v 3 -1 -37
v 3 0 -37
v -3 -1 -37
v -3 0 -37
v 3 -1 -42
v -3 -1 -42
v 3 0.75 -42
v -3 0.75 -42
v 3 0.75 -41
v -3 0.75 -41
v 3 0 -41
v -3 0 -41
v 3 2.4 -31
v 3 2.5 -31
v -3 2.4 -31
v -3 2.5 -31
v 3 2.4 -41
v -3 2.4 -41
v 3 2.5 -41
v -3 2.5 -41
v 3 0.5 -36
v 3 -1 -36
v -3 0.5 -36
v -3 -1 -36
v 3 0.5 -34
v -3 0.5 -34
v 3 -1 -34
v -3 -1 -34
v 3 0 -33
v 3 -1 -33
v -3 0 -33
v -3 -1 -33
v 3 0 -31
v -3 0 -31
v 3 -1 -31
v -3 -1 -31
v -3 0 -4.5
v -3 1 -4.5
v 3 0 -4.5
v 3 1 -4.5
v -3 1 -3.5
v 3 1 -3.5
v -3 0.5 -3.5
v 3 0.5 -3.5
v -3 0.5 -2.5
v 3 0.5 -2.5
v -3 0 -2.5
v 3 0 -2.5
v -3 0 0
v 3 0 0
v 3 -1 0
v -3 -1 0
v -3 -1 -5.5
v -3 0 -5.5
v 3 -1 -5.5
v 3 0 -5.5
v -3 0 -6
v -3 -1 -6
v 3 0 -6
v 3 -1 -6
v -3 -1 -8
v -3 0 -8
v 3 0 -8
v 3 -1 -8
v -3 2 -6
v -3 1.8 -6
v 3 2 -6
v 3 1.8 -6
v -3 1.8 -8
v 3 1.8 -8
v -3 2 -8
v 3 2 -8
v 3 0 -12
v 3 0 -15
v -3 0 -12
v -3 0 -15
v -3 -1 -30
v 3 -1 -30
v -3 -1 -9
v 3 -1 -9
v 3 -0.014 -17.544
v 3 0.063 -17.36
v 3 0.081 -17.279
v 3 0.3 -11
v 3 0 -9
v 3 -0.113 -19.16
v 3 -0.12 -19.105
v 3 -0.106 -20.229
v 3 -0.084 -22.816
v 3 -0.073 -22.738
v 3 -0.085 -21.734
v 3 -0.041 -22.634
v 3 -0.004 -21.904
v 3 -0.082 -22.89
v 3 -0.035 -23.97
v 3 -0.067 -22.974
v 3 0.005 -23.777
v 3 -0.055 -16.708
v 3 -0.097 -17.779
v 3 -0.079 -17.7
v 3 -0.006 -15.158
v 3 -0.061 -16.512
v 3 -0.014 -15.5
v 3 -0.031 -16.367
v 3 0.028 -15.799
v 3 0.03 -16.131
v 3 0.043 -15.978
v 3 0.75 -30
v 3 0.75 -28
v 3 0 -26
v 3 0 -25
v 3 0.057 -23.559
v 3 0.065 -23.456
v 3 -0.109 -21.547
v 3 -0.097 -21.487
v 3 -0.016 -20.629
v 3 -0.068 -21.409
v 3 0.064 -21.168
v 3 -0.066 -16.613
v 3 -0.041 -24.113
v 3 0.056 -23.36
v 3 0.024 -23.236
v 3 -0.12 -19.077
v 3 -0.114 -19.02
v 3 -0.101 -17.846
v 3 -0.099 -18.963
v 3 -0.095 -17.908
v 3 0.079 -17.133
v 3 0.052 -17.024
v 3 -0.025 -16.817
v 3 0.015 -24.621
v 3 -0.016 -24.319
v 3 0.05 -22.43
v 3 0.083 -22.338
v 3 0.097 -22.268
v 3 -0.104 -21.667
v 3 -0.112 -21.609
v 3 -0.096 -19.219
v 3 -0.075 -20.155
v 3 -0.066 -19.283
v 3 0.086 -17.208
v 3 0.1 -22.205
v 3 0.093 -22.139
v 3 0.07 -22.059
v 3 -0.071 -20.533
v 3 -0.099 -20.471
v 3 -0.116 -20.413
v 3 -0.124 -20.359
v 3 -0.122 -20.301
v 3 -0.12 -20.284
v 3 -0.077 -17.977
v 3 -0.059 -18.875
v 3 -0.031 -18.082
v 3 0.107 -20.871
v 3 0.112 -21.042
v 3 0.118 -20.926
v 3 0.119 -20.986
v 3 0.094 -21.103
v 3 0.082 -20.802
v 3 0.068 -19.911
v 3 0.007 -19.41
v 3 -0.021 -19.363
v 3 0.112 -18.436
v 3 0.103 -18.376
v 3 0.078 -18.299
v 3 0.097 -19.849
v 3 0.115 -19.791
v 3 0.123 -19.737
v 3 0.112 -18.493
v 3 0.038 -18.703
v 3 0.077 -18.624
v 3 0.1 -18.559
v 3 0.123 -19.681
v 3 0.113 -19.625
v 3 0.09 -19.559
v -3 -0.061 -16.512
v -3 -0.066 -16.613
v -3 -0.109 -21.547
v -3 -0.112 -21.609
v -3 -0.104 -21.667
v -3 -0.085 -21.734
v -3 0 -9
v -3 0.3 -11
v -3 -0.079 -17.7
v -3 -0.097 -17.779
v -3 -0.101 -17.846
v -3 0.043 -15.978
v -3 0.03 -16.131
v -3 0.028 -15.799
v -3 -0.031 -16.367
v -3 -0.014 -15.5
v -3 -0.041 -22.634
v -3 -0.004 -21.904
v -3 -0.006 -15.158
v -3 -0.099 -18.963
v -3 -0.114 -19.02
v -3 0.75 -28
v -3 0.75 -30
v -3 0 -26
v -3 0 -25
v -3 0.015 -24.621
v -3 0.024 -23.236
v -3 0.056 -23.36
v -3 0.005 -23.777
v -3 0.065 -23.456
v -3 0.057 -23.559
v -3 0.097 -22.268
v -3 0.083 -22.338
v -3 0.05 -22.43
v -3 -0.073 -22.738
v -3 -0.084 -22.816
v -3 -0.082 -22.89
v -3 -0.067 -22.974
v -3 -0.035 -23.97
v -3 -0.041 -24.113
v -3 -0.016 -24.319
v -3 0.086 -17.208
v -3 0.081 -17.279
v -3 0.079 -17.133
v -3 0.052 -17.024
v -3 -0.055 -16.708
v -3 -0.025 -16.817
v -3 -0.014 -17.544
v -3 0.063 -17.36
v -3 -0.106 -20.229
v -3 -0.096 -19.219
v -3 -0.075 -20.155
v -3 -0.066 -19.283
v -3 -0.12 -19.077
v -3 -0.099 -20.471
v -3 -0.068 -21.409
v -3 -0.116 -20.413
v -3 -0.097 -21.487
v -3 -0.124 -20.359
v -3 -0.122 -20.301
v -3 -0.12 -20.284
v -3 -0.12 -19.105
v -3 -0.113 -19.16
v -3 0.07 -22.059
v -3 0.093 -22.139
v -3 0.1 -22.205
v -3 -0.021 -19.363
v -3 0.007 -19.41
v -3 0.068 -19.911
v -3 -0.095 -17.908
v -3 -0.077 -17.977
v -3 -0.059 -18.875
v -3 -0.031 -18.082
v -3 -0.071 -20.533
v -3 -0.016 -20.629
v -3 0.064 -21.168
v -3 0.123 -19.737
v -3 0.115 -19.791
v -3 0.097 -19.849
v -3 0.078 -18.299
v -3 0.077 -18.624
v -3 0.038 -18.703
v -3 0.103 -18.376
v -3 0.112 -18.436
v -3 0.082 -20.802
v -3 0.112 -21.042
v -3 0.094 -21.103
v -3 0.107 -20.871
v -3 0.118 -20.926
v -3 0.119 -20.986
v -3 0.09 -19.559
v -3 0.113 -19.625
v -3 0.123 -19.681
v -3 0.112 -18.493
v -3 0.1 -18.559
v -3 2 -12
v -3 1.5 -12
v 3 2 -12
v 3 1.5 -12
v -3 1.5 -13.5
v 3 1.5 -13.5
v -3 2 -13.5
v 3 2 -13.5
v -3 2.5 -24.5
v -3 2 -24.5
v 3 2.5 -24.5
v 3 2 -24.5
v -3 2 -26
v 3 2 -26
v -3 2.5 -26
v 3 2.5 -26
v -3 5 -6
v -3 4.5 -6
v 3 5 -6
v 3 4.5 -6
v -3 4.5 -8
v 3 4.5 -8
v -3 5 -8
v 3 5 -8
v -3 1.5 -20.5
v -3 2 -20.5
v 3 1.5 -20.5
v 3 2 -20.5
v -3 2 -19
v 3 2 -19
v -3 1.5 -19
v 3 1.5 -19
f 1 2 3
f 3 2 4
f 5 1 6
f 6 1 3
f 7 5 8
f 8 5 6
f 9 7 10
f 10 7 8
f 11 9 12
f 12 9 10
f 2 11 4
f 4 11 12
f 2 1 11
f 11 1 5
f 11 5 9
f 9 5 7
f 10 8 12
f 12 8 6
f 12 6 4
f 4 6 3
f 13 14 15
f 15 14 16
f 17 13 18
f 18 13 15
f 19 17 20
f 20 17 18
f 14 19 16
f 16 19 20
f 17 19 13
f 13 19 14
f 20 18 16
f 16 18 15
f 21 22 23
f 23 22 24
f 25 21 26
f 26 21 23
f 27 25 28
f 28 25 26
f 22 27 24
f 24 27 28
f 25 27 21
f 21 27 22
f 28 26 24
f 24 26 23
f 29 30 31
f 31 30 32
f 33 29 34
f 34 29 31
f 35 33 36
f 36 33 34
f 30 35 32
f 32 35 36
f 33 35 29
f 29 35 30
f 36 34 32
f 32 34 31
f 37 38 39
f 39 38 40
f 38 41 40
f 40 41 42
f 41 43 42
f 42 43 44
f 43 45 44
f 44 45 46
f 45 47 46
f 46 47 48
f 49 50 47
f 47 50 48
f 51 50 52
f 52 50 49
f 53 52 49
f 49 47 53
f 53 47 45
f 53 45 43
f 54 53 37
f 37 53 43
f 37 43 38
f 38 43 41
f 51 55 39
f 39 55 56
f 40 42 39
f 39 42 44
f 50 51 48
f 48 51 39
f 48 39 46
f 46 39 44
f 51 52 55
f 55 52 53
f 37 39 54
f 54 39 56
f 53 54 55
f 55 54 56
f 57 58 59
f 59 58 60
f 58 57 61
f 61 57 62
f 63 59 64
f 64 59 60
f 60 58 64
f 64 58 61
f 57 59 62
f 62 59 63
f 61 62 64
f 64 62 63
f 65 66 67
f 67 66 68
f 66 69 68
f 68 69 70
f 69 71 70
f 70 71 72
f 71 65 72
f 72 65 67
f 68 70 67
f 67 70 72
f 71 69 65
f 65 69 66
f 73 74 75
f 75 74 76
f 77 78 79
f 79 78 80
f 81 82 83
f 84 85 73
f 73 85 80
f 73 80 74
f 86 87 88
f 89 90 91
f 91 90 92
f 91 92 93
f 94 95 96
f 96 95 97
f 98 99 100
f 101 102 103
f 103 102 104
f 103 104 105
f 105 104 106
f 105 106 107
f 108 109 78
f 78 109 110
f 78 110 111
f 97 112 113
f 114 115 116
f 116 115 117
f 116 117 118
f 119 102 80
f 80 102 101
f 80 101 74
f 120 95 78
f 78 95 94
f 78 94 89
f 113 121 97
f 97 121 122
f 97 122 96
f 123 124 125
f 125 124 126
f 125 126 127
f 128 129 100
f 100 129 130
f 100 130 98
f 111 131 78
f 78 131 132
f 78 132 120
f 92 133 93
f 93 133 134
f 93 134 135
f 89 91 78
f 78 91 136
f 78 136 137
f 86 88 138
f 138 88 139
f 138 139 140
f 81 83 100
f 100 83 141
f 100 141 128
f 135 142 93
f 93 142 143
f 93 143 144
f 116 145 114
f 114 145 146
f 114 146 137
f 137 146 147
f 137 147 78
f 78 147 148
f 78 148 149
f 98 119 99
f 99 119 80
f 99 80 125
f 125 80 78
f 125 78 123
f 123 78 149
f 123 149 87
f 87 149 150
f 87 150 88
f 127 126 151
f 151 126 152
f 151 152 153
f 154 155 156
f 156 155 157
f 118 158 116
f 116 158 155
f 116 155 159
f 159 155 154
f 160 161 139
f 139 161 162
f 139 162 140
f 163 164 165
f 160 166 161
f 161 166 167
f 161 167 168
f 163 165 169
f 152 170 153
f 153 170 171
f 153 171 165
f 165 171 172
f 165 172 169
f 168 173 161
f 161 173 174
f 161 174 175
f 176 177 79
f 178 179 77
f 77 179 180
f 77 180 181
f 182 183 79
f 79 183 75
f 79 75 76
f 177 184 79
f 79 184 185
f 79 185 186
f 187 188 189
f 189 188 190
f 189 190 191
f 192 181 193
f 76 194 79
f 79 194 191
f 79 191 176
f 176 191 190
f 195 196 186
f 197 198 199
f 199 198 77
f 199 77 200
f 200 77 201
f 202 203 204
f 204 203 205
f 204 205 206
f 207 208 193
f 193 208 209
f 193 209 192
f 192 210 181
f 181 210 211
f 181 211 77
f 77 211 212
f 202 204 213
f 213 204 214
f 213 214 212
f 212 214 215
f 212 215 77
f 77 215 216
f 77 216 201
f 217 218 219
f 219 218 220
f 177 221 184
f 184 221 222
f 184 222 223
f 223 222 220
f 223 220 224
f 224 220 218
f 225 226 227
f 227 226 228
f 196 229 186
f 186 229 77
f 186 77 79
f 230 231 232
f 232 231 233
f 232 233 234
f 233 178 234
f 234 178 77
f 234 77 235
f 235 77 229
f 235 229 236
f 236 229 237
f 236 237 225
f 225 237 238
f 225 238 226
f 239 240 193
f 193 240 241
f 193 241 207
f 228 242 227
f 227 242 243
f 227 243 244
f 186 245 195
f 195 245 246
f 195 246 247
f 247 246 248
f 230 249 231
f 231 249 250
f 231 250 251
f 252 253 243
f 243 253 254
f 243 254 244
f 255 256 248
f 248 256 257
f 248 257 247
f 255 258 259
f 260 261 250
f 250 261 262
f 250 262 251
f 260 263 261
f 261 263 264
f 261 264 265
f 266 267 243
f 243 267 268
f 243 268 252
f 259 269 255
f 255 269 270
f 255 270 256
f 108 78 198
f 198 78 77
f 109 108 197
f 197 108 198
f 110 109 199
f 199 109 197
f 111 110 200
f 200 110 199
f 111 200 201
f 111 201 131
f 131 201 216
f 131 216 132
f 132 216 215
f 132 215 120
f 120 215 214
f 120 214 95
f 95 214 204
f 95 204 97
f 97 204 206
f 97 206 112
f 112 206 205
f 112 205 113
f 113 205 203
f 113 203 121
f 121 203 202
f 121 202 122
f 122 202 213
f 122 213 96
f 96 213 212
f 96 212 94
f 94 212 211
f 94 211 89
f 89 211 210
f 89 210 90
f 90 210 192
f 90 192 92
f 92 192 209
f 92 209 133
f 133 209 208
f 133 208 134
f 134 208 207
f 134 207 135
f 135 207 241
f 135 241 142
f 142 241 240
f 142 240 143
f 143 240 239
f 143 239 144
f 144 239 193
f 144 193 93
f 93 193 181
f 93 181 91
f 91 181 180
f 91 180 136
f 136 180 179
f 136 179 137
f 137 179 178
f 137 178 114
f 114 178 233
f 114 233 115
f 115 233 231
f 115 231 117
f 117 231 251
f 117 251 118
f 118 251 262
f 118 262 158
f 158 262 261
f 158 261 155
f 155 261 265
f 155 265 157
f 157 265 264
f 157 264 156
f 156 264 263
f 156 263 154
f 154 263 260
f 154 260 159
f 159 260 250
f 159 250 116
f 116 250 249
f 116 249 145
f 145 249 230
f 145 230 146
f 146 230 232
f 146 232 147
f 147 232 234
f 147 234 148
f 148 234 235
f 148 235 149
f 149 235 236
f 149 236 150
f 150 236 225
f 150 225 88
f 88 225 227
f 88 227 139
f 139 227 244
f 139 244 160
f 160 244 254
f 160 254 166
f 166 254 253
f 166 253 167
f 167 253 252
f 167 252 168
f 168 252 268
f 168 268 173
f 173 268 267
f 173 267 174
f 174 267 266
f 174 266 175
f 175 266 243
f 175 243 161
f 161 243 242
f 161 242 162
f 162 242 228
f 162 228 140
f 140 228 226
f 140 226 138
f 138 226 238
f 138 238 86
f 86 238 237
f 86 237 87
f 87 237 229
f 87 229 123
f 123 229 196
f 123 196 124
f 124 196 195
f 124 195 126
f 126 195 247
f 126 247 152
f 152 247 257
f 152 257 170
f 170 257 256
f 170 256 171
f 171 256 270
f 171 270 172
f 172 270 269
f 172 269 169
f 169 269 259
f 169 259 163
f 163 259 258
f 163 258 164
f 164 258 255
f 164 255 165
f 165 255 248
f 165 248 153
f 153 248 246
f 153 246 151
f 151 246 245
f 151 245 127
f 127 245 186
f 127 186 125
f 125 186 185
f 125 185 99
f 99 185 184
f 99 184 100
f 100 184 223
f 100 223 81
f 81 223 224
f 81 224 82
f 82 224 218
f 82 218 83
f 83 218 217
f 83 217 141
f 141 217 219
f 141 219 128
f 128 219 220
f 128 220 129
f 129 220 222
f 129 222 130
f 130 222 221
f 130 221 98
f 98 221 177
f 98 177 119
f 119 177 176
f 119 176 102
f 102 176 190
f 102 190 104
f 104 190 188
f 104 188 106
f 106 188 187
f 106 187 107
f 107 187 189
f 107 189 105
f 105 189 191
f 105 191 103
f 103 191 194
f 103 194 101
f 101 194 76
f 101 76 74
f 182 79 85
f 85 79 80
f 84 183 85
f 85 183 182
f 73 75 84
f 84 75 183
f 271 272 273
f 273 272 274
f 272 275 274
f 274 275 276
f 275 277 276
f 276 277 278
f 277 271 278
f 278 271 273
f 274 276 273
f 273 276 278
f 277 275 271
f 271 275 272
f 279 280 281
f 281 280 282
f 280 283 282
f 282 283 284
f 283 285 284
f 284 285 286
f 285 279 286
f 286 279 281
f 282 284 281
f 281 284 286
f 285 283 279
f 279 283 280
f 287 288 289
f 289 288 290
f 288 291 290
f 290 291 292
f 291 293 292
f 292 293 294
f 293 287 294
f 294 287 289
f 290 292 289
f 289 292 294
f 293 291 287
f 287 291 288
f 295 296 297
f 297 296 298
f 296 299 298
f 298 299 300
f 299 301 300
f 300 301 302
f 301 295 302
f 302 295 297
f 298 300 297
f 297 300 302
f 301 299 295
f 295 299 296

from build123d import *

# Parameters (mm, degrees)
EXTRUDE_1_DEPTH             = 3
EXTRUDE_1_2_DEPTH           = 3
SKETCH_1_W                  = 10
SKETCH_1_H                  = 0.1
EXTRUDE_1_3_DEPTH           = 3
SKETCH_1_W_2                = 2
SKETCH_1_H_2                = 1.5
EXTRUDE_1_4_DEPTH           = 3
SKETCH_1_H_3                = 1
EXTRUDE_1_5_DEPTH           = 3
SKETCH_1_W_3                = 15
EXTRUDE_1_6_DEPTH           = 3
EXTRUDE_2_DEPTH             = 3
EXTRUDE_2_DEPTH_BACK        = 3
EXTRUDE_3_DEPTH             = 3
EXTRUDE_3_DEPTH_BACK        = 3
CUT_EXTRUDE_START           = 3
SKETCH_4_W                  = 0.5
SKETCH_4_H                  = 1
SKETCH_4_W_2                = 1
CUT_EXTRUDE_1_DEPTH         = 7.0000001
EXTRUDE_4_REACH             = 5
SKETCH_5_W                  = 2
SKETCH_5_H                  = 0.2
EXTRUDE_4_DIRECTION_2_REACH = 5
EXTRUDE_5_REACH             = 5
EXTRUDE_5_DIRECTION_2_REACH = 5
EXTRUDE_START               = -3
SKETCH_7_W                  = 1.5
SKETCH_7_H                  = 0.5
EXTRUDE_6_DEPTH             = 6
EXTRUDE_6_2_DEPTH           = 6
EXTRUDE_6_3_DEPTH           = 6
SKETCH_7_W_2                = 2
EXTRUDE_6_4_DEPTH           = 6


with BuildPart() as part:
    # 草图1 → 凸台-拉伸1 (new body, symmetric)
    with BuildSketch(Plane(origin=(0, 0, 0), x_dir=(0, 0, -1), z_dir=(1, 0, 0))):
        Polygon((37, 0), (41, 0), (41, 0.75), (42, 0.75), (42, -1), (37, -1), align=None)
    extrude(amount=EXTRUDE_1_DEPTH, both=True)


with BuildPart() as body_2:
    # 草图1 → Extrude 1 2 (new body, symmetric)
    with BuildSketch(Plane(origin=(0, 0, 0), x_dir=(0, 0, -1), z_dir=(1, 0, 0))):
        Polygon((30, -1), (30, 0.75), (28, 0.75), (26, 0), (25, 0), (25, -1), align=None)
    extrude(amount=EXTRUDE_1_2_DEPTH, both=True)



with BuildPart() as body_3:
    # 草图1 → Extrude 1 3 (new body, symmetric)
    with BuildSketch(Plane(origin=(0, 0, 0), x_dir=(0, 0, -1), z_dir=(1, 0, 0))):
        with Locations((36, 2.45)):
            Rectangle(SKETCH_1_W, SKETCH_1_H)
    extrude(amount=EXTRUDE_1_3_DEPTH, both=True)


with BuildPart() as body_4:
    # 草图1 → Extrude 1 4 (new body, symmetric)
    with BuildSketch(Plane(origin=(0, 0, 0), x_dir=(0, 0, -1), z_dir=(1, 0, 0))):
        with Locations((35, -0.25)):
            Rectangle(SKETCH_1_W_2, SKETCH_1_H_2)
    extrude(amount=EXTRUDE_1_4_DEPTH, both=True)


with BuildPart() as body_5:
    # 草图1 → Extrude 1 5 (new body, symmetric)
    with BuildSketch(Plane(origin=(0, 0, 0), x_dir=(0, 0, -1), z_dir=(1, 0, 0))):
        with Locations((32, -0.5)):
            Rectangle(SKETCH_1_W_2, SKETCH_1_H_3)
    extrude(amount=EXTRUDE_1_5_DEPTH, both=True)


with BuildPart() as body_6:
    # 草图1 → Extrude 1 6 (new body, symmetric)
    with BuildSketch(Plane(origin=(0, 0, 0), x_dir=(0, 0, -1), z_dir=(1, 0, 0))):
        with Locations((7.5, -0.5)):
            Rectangle(SKETCH_1_W_3, SKETCH_1_H_3)
    extrude(amount=EXTRUDE_1_6_DEPTH, both=True)


with BuildPart() as body_2_1:
    add(body_2.part)

    add(body_6.part)  # 凸台-拉伸2 merges body 6
    # 草图2 → 凸台-拉伸2 (add, two sides)
    with BuildSketch(Plane(origin=(0, 0, 0), x_dir=(0, 0, -1), z_dir=(1, 0, 0))) as extrude_2_sk:
        with BuildLine():
            Line((25, 0), (25, -1))
            Line((25, -1), (15, -1))
            Line((15, -1), (15, 0))
            add(Edge.make_bspline(
                [(15, 0), (15.019852379, 0), (15.060190558, -0.000731178), (15.170958225, -0.004993424), (15.304514791, -0.017003842), (15.474252144, -0.021487702), (15.68874463, 0.004937048), (15.893861657, 0.051909588), (16.094951986, 0.044850487), (16.295817919, -0.009198636), (16.472538126, -0.066588084), (16.69222545, -0.079729643), (16.888335149, 0.000528924), (17.057792019, 0.071283945), (17.21996953, 0.094390627), (17.347292458, 0.072033865), (17.465227624, 0.024389734), (17.578141197, -0.031891345), (17.698483931, -0.084840948), (17.835520741, -0.113450201), (17.97049161, -0.086701778), (18.088481622, -0.029788445), (18.195304005, 0.029919779), (18.296356752, 0.08125789), (18.419356141, 0.120991981), (18.565356334, 0.111821211), (18.707223229, 0.039142021), (18.849825719, -0.049006587), (19.004553287, -0.12913704), (19.182498155, -0.125477201), (19.333914462, -0.040957938), (19.473953485, 0.048104078), (19.625939165, 0.131731177), (19.803927697, 0.130852507), (19.955368453, 0.04586001), (20.095152965, -0.044159697), (20.246692264, -0.130036088), (20.425953601, -0.13233286), (20.579865028, -0.047628059), (20.721610821, 0.042597321), (20.875124879, 0.126850879), (21.052917266, 0.126831512), (21.205681567, 0.047140906), (21.346635582, -0.039353707), (21.485341862, -0.109599979), (21.626264904, -0.120139718), (21.74489324, -0.085169656), (21.841126768, -0.038617733), (21.945725191, 0.019145441), (22.061511684, 0.07771784), (22.228121545, 0.120686636), (22.399545356, 0.071438402), (22.54263056, -0.004711258), (22.687559945, -0.064819036), (22.80938576, -0.090770941), (22.933479525, -0.081171782), (23.050482764, -0.045843176), (23.160886922, -0.001969054), (23.270309992, 0.037903038), (23.407269761, 0.0699359), (23.598735058, 0.065525517), (23.820769111, -0.018043876), (24.077234518, -0.062657182), (24.323354641, -0.012520022), (24.534895962, 0.01664141), (24.70139475, 0.017113956), (24.832869481, 0.006461173), (24.940989195, 0.001444486), (24.980546523, 0.000255205), (25, 0)],
                knots=[0.080420158, 0.080420158, 0.080420158, 0.080420158, 0.080420158, 0.08798504, 0.095549922, 0.110679687, 0.125809451, 0.140939215, 0.16517557, 0.177293748, 0.189411925, 0.207122949, 0.224833973, 0.245520981, 0.255864485, 0.266207988, 0.276282774, 0.28635756, 0.296432346, 0.306507132, 0.318373913, 0.330240694, 0.339311626, 0.348382559, 0.357453492, 0.366524424, 0.380143825, 0.393763225, 0.407382626, 0.421002027, 0.434517018, 0.448032009, 0.461547, 0.475061991, 0.488607776, 0.502153562, 0.515699347, 0.529245132, 0.542954524, 0.556663916, 0.570373307, 0.584082699, 0.597491202, 0.610899704, 0.624308207, 0.637716709, 0.646276459, 0.65483621, 0.66339596, 0.67195571, 0.684299222, 0.696642734, 0.716675493, 0.726691872, 0.736708251, 0.746449596, 0.75619094, 0.765932285, 0.77567363, 0.784483857, 0.793294084, 0.810914537, 0.835554636, 0.860194735, 0.875021766, 0.889848798, 0.904675829, 0.912089345, 0.919502861, 0.919502861, 0.919502861, 0.919502861, 0.919502861], degree=4))
        make_face()
    extrude(amount=EXTRUDE_2_DEPTH)
    extrude(extrude_2_sk.sketch, amount=-EXTRUDE_2_DEPTH_BACK)

    # 草图3 → 凸台-拉伸3 (add, two sides)
    with BuildSketch(Plane(origin=(0, 0, 0), x_dir=(0, 0, -1), z_dir=(1, 0, 0))) as extrude_3_sk:
        Polygon((2.5, 0), (2.5, 0.5), (3.5, 0.5), (3.5, 1), (4.5, 1), (4.5, 0), align=None)
    extrude(amount=EXTRUDE_3_DEPTH)
    extrude(extrude_3_sk.sketch, amount=-EXTRUDE_3_DEPTH_BACK)

    # 草图4 → 切除-拉伸1 (cut, through all)
    with BuildSketch(Plane(origin=(0, 0, 0), x_dir=(0, 0, -1), z_dir=(1, 0, 0)).offset(CUT_EXTRUDE_START)):
        with Locations((5.75, -0.5)):
            Rectangle(SKETCH_4_W, SKETCH_4_H)
        with Locations((8.5, -0.5)):
            Rectangle(SKETCH_4_W_2, SKETCH_4_H)
    extrude(amount=-CUT_EXTRUDE_1_DEPTH, mode=Mode.SUBTRACT)


with BuildPart() as body_6_2:

    # 凸台-拉伸4: up to this face of the body (flat: up to its plane)
    extrude_4_end = Plane(body_2_1.part.faces().sort_by_distance((3, -0.303571429, -2.946428571))[0])
    # 草图5 → 凸台-拉伸4 (new body, up to the picked face)
    with BuildSketch(Plane(origin=(0, 0, 0), x_dir=(0, 0, -1), z_dir=(1, 0, 0)), mode=Mode.PRIVATE) as extrude_4_sk1:
        with Locations((7, 1.9)):
            Rectangle(SKETCH_5_W, SKETCH_5_H)
    extrude_4_tool1 = split(extrude(extrude_4_sk1.sketch, amount=EXTRUDE_4_REACH, mode=Mode.PRIVATE), bisect_by=extrude_4_end, keep=Keep.BOTH, mode=Mode.PRIVATE)
    add(extrude_4_tool1.solids().sort_by_distance((0, 1.9, -7))[0])


    # 凸台-拉伸4 direction 2: up to this face of the body (flat: up to its plane)
    extrude_4_direction_2_end = Plane(body_2_1.part.faces().sort_by_distance((-3, -0.416345745, -20.388606858))[0])
    # 草图5 → 凸台-拉伸4 direction 2 (add, up to the picked face)
    with BuildSketch(Plane(origin=(0, 0, 0), x_dir=(0, 0, -1), z_dir=(1, 0, 0)), mode=Mode.PRIVATE) as extrude_4_direction_2_sk1:
        with Locations((7, 1.9)):
            Rectangle(SKETCH_5_W, SKETCH_5_H)
    extrude_4_direction_2_tool1 = split(extrude(extrude_4_direction_2_sk1.sketch, amount=-EXTRUDE_4_DIRECTION_2_REACH, mode=Mode.PRIVATE), bisect_by=extrude_4_direction_2_end, keep=Keep.BOTH, mode=Mode.PRIVATE)
    add(extrude_4_direction_2_tool1.solids().sort_by_distance((0, 1.9, -7))[0])


with BuildPart() as body_2_2:
    add(body_2_1.part)

    # 凸台-拉伸5: up to this face of the body (flat: up to its plane)
    extrude_5_end = Plane(body_2_2.part.faces().sort_by_distance((3, -0.416345745, -20.388606858))[0])
    # 草图6 → 凸台-拉伸5 (add, up to the picked face)
    with BuildSketch(Plane(origin=(0, 0, 0), x_dir=(0, 0, -1), z_dir=(1, 0, 0)), mode=Mode.PRIVATE) as extrude_5_sk1:
        Polygon((9, 0), (11, 0.3), (12, 0), align=None)
    extrude_5_tool1 = split(extrude(extrude_5_sk1.sketch, amount=EXTRUDE_5_REACH, mode=Mode.PRIVATE), bisect_by=extrude_5_end, keep=Keep.BOTH, mode=Mode.PRIVATE)
    add(extrude_5_tool1.solids().sort_by_distance((0, 0.1, -10.666667))[0])

    # 凸台-拉伸5 direction 2: up to this face of the body (flat: up to its plane)
    extrude_5_direction_2_end = Plane(body_2_2.part.faces().sort_by_distance((-3, -0.416345745, -20.388606858))[0])
    # 草图6 → 凸台-拉伸5 direction 2 (add, up to the picked face)
    with BuildSketch(Plane(origin=(0, 0, 0), x_dir=(0, 0, -1), z_dir=(1, 0, 0)), mode=Mode.PRIVATE) as extrude_5_direction_2_sk1:
        Polygon((9, 0), (11, 0.3), (12, 0), align=None)
    extrude_5_direction_2_tool1 = split(extrude(extrude_5_direction_2_sk1.sketch, amount=-EXTRUDE_5_DIRECTION_2_REACH, mode=Mode.PRIVATE), bisect_by=extrude_5_direction_2_end, keep=Keep.BOTH, mode=Mode.PRIVATE)
    add(extrude_5_direction_2_tool1.solids().sort_by_distance((0, 0.1, -10.666667))[0])


with BuildPart() as body_7:
    # 草图7 → 凸台-拉伸6 (new body)
    with BuildSketch(Plane(origin=(0, 0, 0), x_dir=(0, 0, -1), z_dir=(1, 0, 0)).offset(EXTRUDE_START)):
        with Locations((12.75, 1.75)):
            Rectangle(SKETCH_7_W, SKETCH_7_H)
    extrude(amount=EXTRUDE_6_DEPTH)


with BuildPart() as body_8:
    # 草图7 → Extrude 6 2 (new body)
    with BuildSketch(Plane(origin=(0, 0, 0), x_dir=(0, 0, -1), z_dir=(1, 0, 0)).offset(EXTRUDE_START)):
        with Locations((25.25, 2.25)):
            Rectangle(SKETCH_7_W, SKETCH_7_H)
    extrude(amount=EXTRUDE_6_2_DEPTH)


with BuildPart() as body_9:
    # 草图7 → Extrude 6 3 (new body)
    with BuildSketch(Plane(origin=(0, 0, 0), x_dir=(0, 0, -1), z_dir=(1, 0, 0)).offset(EXTRUDE_START)):
        with Locations((19.75, 1.75)):
            Rectangle(SKETCH_7_W, SKETCH_7_H)
    extrude(amount=EXTRUDE_6_3_DEPTH)


with BuildPart() as body_10:
    # 草图7 → Extrude 6 4 (new body)
    with BuildSketch(Plane(origin=(0, 0, 0), x_dir=(0, 0, -1), z_dir=(1, 0, 0)).offset(EXTRUDE_START)):
        with Locations((7, 4.75)):
            Rectangle(SKETCH_7_W_2, SKETCH_7_H)
    extrude(amount=EXTRUDE_6_4_DEPTH)


solid = Compound([part.part, body_3.part, body_4.part, body_5.part, body_6_2.part, body_2_2.part, body_7.part, body_8.part, body_9.part, body_10.part])
